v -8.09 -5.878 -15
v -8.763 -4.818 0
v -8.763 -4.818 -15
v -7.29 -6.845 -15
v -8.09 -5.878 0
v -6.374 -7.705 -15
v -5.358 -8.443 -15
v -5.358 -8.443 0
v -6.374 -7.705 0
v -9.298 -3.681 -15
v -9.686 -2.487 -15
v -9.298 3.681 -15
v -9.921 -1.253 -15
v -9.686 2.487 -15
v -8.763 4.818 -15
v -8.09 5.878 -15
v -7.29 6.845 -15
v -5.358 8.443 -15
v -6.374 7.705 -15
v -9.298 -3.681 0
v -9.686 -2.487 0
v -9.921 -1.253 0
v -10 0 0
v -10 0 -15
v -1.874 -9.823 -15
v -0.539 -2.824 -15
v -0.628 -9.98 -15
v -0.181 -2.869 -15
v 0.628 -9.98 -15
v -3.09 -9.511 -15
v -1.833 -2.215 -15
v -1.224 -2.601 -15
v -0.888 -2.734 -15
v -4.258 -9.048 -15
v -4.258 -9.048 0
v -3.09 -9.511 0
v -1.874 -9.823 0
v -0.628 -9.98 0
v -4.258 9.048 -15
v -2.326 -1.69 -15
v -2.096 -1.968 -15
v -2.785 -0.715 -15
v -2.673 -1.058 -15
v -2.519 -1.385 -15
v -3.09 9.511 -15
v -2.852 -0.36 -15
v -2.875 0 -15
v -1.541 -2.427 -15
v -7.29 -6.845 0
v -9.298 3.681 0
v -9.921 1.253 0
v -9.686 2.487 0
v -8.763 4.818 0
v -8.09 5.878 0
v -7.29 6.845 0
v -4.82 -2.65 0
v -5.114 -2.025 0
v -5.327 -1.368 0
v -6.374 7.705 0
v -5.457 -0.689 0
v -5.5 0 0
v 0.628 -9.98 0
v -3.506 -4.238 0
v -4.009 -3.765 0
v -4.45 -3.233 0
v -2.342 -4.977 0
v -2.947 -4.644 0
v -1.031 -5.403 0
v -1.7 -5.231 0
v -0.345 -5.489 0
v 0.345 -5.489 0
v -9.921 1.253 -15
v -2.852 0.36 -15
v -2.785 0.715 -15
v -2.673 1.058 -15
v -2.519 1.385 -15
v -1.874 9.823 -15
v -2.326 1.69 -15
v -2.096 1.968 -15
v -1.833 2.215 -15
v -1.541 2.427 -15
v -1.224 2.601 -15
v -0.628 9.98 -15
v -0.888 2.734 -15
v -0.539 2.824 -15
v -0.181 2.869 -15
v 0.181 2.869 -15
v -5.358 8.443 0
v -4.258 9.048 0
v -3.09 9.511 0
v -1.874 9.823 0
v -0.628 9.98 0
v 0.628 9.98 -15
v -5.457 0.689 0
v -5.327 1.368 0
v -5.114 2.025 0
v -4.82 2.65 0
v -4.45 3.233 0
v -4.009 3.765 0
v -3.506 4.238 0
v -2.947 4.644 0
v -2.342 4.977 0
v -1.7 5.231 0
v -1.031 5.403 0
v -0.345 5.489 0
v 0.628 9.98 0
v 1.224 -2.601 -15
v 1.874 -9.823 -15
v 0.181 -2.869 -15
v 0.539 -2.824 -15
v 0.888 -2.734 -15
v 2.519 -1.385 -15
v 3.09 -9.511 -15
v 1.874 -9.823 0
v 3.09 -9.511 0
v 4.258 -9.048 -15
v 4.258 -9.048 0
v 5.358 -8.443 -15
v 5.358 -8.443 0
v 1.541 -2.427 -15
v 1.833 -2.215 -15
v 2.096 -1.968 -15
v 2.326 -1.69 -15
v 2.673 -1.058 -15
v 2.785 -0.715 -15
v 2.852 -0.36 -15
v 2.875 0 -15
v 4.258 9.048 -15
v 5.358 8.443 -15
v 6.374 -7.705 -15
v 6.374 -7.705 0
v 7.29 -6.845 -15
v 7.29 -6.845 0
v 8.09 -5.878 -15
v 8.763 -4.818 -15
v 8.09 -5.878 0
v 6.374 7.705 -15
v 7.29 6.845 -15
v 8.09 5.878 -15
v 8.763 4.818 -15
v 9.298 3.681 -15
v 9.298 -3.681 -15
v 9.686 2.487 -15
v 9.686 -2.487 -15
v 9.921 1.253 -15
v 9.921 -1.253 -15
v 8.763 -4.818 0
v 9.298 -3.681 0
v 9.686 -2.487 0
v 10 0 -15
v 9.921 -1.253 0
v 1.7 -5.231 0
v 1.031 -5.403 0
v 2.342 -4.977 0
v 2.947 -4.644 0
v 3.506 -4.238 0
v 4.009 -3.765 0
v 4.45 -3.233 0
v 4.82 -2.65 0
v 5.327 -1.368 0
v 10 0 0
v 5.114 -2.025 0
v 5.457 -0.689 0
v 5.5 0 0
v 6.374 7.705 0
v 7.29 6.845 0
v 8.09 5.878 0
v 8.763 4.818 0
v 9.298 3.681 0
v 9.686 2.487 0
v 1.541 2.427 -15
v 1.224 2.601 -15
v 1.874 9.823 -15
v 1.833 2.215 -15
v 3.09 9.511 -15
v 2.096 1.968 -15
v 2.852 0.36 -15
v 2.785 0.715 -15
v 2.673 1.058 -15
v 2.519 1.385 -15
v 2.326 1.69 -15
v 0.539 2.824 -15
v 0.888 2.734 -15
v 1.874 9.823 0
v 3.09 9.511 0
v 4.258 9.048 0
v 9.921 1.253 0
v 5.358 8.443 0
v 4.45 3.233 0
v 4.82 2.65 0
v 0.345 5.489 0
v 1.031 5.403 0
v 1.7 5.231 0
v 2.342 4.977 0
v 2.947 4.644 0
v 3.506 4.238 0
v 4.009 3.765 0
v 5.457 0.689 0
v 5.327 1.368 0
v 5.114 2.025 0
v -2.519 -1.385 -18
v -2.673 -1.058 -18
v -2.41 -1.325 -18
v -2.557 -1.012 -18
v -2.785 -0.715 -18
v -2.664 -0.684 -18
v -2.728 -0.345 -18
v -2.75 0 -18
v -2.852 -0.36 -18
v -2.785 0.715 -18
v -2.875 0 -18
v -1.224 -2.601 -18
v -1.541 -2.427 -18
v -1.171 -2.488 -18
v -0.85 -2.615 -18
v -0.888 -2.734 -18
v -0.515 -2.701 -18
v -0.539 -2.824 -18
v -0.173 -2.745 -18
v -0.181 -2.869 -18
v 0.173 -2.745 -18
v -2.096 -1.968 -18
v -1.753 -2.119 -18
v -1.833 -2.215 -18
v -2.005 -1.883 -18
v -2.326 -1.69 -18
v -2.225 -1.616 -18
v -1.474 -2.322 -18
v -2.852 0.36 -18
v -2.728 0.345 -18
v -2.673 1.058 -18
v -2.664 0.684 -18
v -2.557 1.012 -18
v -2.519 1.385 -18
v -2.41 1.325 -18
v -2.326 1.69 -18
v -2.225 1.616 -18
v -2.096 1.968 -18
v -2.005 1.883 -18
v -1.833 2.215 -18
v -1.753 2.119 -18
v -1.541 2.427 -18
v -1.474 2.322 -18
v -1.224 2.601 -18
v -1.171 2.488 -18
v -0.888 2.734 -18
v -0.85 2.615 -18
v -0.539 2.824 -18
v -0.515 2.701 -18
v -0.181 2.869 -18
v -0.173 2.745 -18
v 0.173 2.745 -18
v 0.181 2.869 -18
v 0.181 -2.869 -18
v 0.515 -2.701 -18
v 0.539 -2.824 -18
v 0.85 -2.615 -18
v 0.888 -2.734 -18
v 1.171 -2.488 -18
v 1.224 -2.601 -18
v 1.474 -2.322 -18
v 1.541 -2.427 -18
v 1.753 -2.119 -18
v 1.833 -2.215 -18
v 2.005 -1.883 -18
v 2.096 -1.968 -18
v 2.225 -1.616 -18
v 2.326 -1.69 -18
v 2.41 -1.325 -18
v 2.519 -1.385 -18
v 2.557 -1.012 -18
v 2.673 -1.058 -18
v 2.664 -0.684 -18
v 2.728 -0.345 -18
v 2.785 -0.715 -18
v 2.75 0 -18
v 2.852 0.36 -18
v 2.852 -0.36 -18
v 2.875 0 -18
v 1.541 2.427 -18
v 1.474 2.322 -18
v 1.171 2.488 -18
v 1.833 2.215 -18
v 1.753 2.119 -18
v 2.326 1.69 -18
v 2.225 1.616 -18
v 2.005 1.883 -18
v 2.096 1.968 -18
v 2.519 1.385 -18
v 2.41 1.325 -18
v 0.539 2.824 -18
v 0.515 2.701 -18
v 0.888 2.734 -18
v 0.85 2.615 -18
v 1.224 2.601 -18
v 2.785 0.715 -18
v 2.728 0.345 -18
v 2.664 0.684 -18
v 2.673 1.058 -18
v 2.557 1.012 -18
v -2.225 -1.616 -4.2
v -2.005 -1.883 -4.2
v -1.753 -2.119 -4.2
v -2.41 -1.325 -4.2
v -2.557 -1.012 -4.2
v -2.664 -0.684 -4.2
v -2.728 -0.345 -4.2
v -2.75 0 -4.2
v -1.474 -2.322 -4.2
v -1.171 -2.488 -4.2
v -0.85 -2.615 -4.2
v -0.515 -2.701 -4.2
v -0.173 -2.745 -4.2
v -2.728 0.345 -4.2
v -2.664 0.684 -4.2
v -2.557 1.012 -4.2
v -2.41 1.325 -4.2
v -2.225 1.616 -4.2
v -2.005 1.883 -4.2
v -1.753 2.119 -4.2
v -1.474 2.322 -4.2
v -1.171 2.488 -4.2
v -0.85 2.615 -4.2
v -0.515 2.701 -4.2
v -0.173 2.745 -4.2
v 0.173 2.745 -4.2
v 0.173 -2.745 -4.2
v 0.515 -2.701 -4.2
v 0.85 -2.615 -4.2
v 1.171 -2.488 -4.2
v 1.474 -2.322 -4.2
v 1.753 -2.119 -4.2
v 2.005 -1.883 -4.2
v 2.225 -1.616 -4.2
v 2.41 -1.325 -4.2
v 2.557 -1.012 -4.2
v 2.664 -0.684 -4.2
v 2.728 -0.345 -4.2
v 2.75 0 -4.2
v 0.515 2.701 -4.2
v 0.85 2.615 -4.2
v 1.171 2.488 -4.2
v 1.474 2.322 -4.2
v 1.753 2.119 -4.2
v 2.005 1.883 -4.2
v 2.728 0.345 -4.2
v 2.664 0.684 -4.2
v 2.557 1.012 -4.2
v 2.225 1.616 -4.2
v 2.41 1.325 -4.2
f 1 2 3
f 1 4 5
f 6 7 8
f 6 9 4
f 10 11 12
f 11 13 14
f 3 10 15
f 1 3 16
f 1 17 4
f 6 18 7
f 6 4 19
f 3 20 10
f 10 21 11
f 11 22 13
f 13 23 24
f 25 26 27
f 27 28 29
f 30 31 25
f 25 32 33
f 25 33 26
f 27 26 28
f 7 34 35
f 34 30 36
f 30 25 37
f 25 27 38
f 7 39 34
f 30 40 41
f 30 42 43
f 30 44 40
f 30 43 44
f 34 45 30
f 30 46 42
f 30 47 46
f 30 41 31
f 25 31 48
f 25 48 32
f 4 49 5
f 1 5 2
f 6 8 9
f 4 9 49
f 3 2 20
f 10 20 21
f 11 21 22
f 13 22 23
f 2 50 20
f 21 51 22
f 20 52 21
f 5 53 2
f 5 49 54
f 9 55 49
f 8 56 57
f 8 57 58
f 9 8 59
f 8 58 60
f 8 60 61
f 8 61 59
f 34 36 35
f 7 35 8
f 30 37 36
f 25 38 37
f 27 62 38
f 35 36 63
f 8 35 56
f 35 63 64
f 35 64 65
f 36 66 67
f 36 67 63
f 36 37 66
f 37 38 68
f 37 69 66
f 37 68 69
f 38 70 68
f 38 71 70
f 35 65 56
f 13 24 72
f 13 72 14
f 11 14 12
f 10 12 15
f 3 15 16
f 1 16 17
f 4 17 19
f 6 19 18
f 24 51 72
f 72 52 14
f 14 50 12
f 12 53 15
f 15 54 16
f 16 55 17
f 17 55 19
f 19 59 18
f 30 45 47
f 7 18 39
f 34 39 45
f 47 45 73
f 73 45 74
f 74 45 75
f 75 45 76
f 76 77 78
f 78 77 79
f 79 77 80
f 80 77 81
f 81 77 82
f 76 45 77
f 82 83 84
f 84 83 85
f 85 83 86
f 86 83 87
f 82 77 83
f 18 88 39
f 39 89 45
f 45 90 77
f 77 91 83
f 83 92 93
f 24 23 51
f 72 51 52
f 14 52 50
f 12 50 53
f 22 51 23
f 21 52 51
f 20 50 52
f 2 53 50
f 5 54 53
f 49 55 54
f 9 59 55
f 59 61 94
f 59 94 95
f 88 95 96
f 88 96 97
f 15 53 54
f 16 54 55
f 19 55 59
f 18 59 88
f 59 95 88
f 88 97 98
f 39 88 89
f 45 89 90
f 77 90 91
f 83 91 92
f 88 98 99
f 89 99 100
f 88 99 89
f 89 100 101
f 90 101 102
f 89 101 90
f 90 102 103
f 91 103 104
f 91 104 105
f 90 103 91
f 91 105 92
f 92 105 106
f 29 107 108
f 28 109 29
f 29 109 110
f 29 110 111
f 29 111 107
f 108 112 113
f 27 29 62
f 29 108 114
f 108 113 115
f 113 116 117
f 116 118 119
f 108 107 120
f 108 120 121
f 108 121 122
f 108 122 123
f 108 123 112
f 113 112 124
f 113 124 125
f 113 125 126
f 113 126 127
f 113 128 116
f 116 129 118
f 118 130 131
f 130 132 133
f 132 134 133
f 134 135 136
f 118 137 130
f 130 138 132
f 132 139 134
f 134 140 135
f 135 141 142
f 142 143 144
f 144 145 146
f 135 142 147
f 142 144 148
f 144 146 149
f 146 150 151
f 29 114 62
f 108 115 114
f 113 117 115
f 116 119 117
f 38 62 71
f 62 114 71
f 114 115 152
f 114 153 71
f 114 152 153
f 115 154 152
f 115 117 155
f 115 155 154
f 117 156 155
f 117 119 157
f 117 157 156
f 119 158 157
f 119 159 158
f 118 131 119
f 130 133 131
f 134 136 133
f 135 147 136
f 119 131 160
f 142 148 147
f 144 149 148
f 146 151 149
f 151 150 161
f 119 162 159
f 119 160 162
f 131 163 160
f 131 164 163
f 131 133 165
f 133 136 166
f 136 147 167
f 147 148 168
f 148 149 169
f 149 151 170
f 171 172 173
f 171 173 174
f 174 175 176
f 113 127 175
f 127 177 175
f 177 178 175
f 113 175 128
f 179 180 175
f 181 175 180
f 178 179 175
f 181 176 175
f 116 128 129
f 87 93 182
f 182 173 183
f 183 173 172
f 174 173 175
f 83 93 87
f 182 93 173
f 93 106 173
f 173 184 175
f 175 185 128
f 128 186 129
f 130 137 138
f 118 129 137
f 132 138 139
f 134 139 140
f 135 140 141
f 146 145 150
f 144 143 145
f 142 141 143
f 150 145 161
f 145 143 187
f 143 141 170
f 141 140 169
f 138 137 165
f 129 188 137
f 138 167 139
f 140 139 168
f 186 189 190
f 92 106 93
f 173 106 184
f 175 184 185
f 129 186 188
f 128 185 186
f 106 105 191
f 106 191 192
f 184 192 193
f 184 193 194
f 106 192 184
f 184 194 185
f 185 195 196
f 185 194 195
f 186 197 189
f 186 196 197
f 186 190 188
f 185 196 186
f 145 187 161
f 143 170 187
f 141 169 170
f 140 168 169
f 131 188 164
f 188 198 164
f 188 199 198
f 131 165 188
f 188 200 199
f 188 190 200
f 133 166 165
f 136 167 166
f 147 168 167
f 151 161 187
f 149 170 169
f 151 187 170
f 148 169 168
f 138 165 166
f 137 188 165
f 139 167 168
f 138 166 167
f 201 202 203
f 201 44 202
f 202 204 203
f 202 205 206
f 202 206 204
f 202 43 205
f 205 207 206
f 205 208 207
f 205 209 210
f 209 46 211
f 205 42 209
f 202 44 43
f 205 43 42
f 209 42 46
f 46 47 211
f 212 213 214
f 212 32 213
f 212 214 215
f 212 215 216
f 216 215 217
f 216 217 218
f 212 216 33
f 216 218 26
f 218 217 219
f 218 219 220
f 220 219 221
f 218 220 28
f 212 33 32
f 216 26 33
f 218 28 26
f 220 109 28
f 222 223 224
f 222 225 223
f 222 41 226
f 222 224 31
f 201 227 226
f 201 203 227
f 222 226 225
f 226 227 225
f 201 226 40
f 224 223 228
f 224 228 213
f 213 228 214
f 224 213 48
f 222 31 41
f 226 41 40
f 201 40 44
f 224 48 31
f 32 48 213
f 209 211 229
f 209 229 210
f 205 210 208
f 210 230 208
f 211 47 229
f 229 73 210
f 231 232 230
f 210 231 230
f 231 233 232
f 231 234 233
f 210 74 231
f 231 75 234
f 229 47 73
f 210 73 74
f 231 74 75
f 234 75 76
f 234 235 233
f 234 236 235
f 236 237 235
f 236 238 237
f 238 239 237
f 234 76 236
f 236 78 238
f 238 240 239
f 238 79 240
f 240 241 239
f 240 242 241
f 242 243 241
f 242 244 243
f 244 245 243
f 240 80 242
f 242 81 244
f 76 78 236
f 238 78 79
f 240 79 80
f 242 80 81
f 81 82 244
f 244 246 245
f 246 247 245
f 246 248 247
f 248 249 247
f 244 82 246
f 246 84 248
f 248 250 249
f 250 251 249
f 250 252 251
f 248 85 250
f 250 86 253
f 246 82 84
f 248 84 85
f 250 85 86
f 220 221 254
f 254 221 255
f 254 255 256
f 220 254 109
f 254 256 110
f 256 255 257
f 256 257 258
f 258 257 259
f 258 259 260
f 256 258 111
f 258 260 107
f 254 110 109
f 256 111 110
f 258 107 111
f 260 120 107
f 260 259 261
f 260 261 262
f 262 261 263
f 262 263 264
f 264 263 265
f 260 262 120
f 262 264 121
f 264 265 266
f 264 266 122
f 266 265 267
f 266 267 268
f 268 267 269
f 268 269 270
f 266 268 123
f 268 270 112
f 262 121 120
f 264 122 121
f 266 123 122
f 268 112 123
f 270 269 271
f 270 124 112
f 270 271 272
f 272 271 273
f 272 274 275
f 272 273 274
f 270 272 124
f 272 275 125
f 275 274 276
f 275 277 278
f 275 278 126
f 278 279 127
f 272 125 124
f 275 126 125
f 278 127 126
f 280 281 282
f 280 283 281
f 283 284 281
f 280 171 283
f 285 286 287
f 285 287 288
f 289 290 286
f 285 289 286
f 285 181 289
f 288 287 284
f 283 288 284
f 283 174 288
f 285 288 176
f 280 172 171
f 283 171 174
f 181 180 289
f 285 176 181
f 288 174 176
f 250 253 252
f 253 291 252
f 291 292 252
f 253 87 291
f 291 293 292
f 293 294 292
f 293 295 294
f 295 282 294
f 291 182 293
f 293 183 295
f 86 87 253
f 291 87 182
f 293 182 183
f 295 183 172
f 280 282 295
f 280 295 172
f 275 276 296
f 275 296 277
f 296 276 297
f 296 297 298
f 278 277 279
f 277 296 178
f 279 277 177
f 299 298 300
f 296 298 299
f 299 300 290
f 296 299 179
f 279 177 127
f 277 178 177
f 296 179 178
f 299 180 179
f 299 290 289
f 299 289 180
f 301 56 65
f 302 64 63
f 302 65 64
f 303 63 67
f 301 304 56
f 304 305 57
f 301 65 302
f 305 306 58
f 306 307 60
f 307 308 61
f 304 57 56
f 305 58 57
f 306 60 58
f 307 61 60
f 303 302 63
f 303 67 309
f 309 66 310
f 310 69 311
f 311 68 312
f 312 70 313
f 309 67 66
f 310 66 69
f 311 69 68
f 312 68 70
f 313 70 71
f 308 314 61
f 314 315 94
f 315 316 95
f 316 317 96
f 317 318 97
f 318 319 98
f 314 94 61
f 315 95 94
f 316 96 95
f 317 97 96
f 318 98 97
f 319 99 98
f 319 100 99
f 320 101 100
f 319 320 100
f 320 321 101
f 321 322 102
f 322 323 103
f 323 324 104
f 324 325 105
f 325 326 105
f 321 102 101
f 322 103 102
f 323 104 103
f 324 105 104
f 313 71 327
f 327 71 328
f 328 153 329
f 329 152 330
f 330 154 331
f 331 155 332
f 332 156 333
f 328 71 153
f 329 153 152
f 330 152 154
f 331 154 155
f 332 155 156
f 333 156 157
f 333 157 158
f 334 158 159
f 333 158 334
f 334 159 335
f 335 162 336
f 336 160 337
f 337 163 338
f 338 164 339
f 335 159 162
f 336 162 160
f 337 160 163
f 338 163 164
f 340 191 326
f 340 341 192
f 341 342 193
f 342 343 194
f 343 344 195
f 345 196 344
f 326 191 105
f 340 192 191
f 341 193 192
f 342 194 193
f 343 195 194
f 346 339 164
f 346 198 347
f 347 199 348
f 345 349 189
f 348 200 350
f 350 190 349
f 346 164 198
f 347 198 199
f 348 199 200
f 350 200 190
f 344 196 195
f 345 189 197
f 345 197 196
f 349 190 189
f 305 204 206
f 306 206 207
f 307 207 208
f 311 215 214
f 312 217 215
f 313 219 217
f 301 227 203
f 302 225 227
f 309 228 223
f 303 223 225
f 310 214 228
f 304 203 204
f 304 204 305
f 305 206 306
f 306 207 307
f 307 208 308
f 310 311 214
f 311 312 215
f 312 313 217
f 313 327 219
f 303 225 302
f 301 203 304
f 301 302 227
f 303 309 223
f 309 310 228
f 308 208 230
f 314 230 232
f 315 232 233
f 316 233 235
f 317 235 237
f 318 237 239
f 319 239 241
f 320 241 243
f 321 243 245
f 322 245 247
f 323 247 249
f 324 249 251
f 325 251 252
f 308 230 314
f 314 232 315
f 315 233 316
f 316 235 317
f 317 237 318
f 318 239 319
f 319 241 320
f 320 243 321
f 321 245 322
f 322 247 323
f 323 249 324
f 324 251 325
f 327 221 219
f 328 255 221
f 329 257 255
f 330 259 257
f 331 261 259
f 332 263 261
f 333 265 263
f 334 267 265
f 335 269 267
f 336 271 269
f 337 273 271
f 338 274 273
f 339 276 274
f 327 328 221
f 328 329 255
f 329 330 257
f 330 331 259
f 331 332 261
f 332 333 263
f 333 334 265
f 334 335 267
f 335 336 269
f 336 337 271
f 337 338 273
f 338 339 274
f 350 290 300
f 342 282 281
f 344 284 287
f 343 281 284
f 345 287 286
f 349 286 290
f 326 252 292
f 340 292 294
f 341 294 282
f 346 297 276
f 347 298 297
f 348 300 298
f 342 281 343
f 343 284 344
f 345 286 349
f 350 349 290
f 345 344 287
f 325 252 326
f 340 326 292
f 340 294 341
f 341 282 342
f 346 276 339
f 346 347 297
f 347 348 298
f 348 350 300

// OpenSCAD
$fn = 50;

difference() {
	union() {
		translate(v = [0, 0, -15.0]) {
			cylinder(h = 15, r = 10.0);
		}
		#translate(v = [0, 0, -18.0]) {
			cylinder(h = 18, r = 2.875);
		}
	}
	union() {
		translate(v = [0, 0, 0]) {
			rotate(a = [0, 0, 0]) {
				difference() {
					union() {
						translate(v = [0, 0, -18.0]) {
							cylinder(h = 18, r = 2.25);
						}
						translate(v = [0, 0, -4.2]) {
							cylinder(h = 4.2, r1 = 2.75, r2 = 5.5);
						}
						translate(v = [0, 0, -18.0]) {
							cylinder(h = 18, r = 2.75);
						}
						translate(v = [0, 0, -18.0]) {
							cylinder(h = 18, r = 2.25);
						}
					}
					union();
				}
			}
		}
	}
}
